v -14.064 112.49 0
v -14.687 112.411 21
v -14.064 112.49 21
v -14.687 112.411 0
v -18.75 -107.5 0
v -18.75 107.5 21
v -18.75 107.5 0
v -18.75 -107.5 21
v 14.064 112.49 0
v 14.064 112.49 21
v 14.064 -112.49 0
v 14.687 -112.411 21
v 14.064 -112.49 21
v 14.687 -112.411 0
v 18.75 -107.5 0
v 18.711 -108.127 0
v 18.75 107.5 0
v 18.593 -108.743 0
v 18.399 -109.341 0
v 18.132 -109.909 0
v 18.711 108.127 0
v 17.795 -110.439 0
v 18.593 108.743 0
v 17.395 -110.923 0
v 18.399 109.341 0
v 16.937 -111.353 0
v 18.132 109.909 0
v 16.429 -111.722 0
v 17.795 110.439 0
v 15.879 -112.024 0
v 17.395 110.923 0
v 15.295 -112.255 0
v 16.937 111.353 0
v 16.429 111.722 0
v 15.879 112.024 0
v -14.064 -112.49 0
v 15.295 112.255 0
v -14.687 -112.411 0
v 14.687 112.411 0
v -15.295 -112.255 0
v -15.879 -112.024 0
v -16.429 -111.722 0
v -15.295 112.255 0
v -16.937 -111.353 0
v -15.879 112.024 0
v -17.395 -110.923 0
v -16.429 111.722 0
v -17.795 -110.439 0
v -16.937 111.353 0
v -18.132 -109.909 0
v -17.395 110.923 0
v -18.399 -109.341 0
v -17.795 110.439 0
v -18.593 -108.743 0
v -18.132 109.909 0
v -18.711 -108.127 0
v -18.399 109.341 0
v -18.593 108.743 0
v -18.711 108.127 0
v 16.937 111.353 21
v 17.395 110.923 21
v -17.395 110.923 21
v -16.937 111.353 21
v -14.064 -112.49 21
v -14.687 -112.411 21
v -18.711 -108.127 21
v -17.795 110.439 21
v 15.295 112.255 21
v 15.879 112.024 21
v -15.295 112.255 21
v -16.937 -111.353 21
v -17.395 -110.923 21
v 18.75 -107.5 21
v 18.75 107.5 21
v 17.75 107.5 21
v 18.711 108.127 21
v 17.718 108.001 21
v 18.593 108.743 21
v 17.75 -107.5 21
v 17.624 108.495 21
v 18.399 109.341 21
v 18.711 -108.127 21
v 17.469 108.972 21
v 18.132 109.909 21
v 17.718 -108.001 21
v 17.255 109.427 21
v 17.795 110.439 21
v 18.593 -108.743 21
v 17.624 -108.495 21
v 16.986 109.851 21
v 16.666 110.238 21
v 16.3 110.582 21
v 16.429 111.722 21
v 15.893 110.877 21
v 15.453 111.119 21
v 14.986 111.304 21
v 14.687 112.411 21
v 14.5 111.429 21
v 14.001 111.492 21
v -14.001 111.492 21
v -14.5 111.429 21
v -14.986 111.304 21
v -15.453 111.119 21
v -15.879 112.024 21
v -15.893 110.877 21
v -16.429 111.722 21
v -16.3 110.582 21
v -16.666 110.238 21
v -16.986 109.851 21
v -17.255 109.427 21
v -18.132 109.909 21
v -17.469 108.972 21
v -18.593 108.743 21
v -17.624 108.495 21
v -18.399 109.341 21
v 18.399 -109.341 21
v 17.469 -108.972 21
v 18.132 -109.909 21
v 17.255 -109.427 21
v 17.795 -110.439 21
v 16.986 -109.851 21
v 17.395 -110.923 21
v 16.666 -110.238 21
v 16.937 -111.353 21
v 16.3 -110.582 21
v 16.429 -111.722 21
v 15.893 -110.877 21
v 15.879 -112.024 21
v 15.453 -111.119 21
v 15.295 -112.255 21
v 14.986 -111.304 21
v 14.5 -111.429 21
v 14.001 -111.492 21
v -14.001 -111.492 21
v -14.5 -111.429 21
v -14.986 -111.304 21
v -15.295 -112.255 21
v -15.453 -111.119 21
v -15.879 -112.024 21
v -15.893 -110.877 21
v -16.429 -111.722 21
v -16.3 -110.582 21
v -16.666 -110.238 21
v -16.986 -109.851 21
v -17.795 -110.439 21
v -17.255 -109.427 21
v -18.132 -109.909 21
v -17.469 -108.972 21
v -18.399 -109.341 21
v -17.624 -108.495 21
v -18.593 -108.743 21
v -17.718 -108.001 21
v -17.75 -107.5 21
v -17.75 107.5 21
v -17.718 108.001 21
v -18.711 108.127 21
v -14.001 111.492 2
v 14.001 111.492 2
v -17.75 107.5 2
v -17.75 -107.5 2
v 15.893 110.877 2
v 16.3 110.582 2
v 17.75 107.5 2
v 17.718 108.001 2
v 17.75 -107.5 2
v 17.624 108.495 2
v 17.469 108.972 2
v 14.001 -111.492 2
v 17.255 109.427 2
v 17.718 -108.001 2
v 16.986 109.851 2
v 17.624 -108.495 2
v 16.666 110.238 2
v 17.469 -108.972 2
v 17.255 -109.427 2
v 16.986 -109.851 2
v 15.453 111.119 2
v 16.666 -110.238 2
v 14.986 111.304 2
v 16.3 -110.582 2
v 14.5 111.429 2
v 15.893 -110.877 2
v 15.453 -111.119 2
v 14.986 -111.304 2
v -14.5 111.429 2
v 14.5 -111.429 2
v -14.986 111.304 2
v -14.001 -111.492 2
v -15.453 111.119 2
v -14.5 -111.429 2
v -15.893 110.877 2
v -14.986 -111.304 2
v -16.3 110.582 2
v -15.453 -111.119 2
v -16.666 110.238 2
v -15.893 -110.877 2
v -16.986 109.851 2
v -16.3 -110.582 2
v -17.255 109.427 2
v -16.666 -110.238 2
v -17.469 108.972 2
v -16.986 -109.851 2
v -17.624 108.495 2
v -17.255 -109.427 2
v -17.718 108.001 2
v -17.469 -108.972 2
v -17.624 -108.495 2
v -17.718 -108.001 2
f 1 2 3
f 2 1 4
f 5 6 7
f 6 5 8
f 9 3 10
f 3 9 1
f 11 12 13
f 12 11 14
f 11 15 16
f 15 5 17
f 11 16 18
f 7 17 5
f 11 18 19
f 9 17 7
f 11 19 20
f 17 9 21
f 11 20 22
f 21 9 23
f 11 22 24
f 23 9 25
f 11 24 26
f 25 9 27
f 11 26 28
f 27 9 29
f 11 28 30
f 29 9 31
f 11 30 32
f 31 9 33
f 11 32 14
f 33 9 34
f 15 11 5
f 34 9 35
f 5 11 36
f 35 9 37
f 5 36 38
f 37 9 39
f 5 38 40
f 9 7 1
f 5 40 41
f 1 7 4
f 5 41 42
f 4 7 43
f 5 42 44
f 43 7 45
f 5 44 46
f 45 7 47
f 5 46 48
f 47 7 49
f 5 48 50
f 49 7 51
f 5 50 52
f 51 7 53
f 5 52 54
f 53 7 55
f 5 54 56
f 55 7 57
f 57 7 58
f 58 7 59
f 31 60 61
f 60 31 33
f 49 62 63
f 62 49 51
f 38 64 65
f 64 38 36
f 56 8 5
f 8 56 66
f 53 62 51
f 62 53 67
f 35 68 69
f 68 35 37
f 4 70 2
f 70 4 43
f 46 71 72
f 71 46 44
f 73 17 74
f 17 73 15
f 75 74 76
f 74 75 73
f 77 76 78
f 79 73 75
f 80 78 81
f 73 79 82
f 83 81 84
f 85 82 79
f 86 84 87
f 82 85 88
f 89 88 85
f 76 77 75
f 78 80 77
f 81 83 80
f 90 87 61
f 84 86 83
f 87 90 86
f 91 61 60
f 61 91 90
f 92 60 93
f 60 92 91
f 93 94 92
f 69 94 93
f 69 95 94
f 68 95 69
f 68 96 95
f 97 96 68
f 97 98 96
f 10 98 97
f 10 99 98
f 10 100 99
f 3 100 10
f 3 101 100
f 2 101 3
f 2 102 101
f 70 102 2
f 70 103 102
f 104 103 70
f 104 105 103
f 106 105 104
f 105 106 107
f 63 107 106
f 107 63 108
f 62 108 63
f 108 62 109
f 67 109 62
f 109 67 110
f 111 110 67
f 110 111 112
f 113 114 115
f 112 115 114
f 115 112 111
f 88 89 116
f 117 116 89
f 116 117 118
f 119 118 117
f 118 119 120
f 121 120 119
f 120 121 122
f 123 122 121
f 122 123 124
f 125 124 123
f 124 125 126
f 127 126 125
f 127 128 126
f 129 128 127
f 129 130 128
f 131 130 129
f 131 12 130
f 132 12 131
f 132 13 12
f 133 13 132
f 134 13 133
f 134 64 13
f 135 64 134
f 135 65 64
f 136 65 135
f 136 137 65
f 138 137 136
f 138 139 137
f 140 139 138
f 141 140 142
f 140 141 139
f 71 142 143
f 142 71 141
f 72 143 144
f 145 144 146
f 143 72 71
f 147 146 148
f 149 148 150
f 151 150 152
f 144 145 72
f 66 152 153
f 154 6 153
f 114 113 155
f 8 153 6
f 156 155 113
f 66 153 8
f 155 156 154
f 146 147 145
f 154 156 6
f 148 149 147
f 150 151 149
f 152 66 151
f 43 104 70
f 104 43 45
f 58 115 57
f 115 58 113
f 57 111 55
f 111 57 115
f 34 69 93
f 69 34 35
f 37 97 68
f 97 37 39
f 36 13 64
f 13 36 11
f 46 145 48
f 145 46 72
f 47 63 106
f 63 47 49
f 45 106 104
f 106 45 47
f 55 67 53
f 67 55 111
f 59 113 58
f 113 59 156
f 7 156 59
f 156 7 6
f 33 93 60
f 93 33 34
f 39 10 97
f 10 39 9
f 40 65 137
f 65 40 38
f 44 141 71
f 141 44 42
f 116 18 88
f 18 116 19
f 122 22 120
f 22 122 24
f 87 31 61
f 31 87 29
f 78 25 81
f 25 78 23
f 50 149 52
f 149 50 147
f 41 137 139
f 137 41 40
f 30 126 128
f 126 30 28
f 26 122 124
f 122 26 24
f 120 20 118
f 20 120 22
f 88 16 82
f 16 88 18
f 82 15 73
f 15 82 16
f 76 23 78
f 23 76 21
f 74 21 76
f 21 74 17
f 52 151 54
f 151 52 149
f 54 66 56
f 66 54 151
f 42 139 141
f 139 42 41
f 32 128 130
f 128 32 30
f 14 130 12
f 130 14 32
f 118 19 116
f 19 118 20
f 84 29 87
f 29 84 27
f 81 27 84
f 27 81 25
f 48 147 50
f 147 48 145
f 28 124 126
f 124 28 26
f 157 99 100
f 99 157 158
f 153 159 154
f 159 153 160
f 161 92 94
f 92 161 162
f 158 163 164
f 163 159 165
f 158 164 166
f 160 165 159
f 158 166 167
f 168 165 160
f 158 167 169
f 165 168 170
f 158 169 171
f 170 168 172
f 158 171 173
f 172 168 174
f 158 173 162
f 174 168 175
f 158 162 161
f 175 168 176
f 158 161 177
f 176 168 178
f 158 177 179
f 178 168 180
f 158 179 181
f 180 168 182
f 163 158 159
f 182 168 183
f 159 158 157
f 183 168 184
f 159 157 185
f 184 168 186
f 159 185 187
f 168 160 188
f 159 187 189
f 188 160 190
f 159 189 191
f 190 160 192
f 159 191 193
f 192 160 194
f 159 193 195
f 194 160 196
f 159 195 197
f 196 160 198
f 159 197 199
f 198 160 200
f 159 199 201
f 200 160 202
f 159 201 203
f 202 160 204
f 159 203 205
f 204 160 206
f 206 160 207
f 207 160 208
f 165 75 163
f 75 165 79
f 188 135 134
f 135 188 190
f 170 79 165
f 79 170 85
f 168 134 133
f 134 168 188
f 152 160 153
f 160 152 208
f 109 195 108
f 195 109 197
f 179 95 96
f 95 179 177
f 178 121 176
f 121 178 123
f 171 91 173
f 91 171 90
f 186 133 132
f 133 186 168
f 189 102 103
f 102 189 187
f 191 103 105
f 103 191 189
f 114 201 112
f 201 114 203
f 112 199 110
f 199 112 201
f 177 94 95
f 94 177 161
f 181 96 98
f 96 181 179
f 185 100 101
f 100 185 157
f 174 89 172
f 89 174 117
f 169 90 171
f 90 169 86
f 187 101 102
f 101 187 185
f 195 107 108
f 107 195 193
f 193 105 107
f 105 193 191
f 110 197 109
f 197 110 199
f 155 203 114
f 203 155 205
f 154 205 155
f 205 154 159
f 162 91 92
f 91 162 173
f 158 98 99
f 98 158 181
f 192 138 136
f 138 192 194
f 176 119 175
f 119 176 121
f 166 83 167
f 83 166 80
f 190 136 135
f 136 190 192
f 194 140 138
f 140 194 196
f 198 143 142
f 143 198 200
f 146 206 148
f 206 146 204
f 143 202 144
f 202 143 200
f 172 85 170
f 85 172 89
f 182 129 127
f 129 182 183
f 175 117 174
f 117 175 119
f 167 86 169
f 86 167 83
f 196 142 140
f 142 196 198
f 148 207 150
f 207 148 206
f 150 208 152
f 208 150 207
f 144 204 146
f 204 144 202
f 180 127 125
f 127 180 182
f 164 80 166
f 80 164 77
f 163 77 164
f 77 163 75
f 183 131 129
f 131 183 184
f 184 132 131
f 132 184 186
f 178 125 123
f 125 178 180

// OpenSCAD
$fn = 50;


difference() {
	union() {
		hull() {
			translate(v = [-13.7500000000, 107.5000000000, 0]) {
				cylinder(h = 21, r = 5);
			}
			translate(v = [13.7500000000, 107.5000000000, 0]) {
				cylinder(h = 21, r = 5);
			}
			translate(v = [-13.7500000000, -107.5000000000, 0]) {
				cylinder(h = 21, r = 5);
			}
			translate(v = [13.7500000000, -107.5000000000, 0]) {
				cylinder(h = 21, r = 5);
			}
		}
	}
	union() {
		translate(v = [0, 0, 2]) {
			hull() {
				translate(v = [-13.7500000000, 107.5000000000, 0]) {
					cylinder(h = 19, r = 4);
				}
				translate(v = [13.7500000000, 107.5000000000, 0]) {
					cylinder(h = 19, r = 4);
				}
				translate(v = [-13.7500000000, -107.5000000000, 0]) {
					cylinder(h = 19, r = 4);
				}
				translate(v = [13.7500000000, -107.5000000000, 0]) {
					cylinder(h = 19, r = 4);
				}
			}
		}
	}
}
